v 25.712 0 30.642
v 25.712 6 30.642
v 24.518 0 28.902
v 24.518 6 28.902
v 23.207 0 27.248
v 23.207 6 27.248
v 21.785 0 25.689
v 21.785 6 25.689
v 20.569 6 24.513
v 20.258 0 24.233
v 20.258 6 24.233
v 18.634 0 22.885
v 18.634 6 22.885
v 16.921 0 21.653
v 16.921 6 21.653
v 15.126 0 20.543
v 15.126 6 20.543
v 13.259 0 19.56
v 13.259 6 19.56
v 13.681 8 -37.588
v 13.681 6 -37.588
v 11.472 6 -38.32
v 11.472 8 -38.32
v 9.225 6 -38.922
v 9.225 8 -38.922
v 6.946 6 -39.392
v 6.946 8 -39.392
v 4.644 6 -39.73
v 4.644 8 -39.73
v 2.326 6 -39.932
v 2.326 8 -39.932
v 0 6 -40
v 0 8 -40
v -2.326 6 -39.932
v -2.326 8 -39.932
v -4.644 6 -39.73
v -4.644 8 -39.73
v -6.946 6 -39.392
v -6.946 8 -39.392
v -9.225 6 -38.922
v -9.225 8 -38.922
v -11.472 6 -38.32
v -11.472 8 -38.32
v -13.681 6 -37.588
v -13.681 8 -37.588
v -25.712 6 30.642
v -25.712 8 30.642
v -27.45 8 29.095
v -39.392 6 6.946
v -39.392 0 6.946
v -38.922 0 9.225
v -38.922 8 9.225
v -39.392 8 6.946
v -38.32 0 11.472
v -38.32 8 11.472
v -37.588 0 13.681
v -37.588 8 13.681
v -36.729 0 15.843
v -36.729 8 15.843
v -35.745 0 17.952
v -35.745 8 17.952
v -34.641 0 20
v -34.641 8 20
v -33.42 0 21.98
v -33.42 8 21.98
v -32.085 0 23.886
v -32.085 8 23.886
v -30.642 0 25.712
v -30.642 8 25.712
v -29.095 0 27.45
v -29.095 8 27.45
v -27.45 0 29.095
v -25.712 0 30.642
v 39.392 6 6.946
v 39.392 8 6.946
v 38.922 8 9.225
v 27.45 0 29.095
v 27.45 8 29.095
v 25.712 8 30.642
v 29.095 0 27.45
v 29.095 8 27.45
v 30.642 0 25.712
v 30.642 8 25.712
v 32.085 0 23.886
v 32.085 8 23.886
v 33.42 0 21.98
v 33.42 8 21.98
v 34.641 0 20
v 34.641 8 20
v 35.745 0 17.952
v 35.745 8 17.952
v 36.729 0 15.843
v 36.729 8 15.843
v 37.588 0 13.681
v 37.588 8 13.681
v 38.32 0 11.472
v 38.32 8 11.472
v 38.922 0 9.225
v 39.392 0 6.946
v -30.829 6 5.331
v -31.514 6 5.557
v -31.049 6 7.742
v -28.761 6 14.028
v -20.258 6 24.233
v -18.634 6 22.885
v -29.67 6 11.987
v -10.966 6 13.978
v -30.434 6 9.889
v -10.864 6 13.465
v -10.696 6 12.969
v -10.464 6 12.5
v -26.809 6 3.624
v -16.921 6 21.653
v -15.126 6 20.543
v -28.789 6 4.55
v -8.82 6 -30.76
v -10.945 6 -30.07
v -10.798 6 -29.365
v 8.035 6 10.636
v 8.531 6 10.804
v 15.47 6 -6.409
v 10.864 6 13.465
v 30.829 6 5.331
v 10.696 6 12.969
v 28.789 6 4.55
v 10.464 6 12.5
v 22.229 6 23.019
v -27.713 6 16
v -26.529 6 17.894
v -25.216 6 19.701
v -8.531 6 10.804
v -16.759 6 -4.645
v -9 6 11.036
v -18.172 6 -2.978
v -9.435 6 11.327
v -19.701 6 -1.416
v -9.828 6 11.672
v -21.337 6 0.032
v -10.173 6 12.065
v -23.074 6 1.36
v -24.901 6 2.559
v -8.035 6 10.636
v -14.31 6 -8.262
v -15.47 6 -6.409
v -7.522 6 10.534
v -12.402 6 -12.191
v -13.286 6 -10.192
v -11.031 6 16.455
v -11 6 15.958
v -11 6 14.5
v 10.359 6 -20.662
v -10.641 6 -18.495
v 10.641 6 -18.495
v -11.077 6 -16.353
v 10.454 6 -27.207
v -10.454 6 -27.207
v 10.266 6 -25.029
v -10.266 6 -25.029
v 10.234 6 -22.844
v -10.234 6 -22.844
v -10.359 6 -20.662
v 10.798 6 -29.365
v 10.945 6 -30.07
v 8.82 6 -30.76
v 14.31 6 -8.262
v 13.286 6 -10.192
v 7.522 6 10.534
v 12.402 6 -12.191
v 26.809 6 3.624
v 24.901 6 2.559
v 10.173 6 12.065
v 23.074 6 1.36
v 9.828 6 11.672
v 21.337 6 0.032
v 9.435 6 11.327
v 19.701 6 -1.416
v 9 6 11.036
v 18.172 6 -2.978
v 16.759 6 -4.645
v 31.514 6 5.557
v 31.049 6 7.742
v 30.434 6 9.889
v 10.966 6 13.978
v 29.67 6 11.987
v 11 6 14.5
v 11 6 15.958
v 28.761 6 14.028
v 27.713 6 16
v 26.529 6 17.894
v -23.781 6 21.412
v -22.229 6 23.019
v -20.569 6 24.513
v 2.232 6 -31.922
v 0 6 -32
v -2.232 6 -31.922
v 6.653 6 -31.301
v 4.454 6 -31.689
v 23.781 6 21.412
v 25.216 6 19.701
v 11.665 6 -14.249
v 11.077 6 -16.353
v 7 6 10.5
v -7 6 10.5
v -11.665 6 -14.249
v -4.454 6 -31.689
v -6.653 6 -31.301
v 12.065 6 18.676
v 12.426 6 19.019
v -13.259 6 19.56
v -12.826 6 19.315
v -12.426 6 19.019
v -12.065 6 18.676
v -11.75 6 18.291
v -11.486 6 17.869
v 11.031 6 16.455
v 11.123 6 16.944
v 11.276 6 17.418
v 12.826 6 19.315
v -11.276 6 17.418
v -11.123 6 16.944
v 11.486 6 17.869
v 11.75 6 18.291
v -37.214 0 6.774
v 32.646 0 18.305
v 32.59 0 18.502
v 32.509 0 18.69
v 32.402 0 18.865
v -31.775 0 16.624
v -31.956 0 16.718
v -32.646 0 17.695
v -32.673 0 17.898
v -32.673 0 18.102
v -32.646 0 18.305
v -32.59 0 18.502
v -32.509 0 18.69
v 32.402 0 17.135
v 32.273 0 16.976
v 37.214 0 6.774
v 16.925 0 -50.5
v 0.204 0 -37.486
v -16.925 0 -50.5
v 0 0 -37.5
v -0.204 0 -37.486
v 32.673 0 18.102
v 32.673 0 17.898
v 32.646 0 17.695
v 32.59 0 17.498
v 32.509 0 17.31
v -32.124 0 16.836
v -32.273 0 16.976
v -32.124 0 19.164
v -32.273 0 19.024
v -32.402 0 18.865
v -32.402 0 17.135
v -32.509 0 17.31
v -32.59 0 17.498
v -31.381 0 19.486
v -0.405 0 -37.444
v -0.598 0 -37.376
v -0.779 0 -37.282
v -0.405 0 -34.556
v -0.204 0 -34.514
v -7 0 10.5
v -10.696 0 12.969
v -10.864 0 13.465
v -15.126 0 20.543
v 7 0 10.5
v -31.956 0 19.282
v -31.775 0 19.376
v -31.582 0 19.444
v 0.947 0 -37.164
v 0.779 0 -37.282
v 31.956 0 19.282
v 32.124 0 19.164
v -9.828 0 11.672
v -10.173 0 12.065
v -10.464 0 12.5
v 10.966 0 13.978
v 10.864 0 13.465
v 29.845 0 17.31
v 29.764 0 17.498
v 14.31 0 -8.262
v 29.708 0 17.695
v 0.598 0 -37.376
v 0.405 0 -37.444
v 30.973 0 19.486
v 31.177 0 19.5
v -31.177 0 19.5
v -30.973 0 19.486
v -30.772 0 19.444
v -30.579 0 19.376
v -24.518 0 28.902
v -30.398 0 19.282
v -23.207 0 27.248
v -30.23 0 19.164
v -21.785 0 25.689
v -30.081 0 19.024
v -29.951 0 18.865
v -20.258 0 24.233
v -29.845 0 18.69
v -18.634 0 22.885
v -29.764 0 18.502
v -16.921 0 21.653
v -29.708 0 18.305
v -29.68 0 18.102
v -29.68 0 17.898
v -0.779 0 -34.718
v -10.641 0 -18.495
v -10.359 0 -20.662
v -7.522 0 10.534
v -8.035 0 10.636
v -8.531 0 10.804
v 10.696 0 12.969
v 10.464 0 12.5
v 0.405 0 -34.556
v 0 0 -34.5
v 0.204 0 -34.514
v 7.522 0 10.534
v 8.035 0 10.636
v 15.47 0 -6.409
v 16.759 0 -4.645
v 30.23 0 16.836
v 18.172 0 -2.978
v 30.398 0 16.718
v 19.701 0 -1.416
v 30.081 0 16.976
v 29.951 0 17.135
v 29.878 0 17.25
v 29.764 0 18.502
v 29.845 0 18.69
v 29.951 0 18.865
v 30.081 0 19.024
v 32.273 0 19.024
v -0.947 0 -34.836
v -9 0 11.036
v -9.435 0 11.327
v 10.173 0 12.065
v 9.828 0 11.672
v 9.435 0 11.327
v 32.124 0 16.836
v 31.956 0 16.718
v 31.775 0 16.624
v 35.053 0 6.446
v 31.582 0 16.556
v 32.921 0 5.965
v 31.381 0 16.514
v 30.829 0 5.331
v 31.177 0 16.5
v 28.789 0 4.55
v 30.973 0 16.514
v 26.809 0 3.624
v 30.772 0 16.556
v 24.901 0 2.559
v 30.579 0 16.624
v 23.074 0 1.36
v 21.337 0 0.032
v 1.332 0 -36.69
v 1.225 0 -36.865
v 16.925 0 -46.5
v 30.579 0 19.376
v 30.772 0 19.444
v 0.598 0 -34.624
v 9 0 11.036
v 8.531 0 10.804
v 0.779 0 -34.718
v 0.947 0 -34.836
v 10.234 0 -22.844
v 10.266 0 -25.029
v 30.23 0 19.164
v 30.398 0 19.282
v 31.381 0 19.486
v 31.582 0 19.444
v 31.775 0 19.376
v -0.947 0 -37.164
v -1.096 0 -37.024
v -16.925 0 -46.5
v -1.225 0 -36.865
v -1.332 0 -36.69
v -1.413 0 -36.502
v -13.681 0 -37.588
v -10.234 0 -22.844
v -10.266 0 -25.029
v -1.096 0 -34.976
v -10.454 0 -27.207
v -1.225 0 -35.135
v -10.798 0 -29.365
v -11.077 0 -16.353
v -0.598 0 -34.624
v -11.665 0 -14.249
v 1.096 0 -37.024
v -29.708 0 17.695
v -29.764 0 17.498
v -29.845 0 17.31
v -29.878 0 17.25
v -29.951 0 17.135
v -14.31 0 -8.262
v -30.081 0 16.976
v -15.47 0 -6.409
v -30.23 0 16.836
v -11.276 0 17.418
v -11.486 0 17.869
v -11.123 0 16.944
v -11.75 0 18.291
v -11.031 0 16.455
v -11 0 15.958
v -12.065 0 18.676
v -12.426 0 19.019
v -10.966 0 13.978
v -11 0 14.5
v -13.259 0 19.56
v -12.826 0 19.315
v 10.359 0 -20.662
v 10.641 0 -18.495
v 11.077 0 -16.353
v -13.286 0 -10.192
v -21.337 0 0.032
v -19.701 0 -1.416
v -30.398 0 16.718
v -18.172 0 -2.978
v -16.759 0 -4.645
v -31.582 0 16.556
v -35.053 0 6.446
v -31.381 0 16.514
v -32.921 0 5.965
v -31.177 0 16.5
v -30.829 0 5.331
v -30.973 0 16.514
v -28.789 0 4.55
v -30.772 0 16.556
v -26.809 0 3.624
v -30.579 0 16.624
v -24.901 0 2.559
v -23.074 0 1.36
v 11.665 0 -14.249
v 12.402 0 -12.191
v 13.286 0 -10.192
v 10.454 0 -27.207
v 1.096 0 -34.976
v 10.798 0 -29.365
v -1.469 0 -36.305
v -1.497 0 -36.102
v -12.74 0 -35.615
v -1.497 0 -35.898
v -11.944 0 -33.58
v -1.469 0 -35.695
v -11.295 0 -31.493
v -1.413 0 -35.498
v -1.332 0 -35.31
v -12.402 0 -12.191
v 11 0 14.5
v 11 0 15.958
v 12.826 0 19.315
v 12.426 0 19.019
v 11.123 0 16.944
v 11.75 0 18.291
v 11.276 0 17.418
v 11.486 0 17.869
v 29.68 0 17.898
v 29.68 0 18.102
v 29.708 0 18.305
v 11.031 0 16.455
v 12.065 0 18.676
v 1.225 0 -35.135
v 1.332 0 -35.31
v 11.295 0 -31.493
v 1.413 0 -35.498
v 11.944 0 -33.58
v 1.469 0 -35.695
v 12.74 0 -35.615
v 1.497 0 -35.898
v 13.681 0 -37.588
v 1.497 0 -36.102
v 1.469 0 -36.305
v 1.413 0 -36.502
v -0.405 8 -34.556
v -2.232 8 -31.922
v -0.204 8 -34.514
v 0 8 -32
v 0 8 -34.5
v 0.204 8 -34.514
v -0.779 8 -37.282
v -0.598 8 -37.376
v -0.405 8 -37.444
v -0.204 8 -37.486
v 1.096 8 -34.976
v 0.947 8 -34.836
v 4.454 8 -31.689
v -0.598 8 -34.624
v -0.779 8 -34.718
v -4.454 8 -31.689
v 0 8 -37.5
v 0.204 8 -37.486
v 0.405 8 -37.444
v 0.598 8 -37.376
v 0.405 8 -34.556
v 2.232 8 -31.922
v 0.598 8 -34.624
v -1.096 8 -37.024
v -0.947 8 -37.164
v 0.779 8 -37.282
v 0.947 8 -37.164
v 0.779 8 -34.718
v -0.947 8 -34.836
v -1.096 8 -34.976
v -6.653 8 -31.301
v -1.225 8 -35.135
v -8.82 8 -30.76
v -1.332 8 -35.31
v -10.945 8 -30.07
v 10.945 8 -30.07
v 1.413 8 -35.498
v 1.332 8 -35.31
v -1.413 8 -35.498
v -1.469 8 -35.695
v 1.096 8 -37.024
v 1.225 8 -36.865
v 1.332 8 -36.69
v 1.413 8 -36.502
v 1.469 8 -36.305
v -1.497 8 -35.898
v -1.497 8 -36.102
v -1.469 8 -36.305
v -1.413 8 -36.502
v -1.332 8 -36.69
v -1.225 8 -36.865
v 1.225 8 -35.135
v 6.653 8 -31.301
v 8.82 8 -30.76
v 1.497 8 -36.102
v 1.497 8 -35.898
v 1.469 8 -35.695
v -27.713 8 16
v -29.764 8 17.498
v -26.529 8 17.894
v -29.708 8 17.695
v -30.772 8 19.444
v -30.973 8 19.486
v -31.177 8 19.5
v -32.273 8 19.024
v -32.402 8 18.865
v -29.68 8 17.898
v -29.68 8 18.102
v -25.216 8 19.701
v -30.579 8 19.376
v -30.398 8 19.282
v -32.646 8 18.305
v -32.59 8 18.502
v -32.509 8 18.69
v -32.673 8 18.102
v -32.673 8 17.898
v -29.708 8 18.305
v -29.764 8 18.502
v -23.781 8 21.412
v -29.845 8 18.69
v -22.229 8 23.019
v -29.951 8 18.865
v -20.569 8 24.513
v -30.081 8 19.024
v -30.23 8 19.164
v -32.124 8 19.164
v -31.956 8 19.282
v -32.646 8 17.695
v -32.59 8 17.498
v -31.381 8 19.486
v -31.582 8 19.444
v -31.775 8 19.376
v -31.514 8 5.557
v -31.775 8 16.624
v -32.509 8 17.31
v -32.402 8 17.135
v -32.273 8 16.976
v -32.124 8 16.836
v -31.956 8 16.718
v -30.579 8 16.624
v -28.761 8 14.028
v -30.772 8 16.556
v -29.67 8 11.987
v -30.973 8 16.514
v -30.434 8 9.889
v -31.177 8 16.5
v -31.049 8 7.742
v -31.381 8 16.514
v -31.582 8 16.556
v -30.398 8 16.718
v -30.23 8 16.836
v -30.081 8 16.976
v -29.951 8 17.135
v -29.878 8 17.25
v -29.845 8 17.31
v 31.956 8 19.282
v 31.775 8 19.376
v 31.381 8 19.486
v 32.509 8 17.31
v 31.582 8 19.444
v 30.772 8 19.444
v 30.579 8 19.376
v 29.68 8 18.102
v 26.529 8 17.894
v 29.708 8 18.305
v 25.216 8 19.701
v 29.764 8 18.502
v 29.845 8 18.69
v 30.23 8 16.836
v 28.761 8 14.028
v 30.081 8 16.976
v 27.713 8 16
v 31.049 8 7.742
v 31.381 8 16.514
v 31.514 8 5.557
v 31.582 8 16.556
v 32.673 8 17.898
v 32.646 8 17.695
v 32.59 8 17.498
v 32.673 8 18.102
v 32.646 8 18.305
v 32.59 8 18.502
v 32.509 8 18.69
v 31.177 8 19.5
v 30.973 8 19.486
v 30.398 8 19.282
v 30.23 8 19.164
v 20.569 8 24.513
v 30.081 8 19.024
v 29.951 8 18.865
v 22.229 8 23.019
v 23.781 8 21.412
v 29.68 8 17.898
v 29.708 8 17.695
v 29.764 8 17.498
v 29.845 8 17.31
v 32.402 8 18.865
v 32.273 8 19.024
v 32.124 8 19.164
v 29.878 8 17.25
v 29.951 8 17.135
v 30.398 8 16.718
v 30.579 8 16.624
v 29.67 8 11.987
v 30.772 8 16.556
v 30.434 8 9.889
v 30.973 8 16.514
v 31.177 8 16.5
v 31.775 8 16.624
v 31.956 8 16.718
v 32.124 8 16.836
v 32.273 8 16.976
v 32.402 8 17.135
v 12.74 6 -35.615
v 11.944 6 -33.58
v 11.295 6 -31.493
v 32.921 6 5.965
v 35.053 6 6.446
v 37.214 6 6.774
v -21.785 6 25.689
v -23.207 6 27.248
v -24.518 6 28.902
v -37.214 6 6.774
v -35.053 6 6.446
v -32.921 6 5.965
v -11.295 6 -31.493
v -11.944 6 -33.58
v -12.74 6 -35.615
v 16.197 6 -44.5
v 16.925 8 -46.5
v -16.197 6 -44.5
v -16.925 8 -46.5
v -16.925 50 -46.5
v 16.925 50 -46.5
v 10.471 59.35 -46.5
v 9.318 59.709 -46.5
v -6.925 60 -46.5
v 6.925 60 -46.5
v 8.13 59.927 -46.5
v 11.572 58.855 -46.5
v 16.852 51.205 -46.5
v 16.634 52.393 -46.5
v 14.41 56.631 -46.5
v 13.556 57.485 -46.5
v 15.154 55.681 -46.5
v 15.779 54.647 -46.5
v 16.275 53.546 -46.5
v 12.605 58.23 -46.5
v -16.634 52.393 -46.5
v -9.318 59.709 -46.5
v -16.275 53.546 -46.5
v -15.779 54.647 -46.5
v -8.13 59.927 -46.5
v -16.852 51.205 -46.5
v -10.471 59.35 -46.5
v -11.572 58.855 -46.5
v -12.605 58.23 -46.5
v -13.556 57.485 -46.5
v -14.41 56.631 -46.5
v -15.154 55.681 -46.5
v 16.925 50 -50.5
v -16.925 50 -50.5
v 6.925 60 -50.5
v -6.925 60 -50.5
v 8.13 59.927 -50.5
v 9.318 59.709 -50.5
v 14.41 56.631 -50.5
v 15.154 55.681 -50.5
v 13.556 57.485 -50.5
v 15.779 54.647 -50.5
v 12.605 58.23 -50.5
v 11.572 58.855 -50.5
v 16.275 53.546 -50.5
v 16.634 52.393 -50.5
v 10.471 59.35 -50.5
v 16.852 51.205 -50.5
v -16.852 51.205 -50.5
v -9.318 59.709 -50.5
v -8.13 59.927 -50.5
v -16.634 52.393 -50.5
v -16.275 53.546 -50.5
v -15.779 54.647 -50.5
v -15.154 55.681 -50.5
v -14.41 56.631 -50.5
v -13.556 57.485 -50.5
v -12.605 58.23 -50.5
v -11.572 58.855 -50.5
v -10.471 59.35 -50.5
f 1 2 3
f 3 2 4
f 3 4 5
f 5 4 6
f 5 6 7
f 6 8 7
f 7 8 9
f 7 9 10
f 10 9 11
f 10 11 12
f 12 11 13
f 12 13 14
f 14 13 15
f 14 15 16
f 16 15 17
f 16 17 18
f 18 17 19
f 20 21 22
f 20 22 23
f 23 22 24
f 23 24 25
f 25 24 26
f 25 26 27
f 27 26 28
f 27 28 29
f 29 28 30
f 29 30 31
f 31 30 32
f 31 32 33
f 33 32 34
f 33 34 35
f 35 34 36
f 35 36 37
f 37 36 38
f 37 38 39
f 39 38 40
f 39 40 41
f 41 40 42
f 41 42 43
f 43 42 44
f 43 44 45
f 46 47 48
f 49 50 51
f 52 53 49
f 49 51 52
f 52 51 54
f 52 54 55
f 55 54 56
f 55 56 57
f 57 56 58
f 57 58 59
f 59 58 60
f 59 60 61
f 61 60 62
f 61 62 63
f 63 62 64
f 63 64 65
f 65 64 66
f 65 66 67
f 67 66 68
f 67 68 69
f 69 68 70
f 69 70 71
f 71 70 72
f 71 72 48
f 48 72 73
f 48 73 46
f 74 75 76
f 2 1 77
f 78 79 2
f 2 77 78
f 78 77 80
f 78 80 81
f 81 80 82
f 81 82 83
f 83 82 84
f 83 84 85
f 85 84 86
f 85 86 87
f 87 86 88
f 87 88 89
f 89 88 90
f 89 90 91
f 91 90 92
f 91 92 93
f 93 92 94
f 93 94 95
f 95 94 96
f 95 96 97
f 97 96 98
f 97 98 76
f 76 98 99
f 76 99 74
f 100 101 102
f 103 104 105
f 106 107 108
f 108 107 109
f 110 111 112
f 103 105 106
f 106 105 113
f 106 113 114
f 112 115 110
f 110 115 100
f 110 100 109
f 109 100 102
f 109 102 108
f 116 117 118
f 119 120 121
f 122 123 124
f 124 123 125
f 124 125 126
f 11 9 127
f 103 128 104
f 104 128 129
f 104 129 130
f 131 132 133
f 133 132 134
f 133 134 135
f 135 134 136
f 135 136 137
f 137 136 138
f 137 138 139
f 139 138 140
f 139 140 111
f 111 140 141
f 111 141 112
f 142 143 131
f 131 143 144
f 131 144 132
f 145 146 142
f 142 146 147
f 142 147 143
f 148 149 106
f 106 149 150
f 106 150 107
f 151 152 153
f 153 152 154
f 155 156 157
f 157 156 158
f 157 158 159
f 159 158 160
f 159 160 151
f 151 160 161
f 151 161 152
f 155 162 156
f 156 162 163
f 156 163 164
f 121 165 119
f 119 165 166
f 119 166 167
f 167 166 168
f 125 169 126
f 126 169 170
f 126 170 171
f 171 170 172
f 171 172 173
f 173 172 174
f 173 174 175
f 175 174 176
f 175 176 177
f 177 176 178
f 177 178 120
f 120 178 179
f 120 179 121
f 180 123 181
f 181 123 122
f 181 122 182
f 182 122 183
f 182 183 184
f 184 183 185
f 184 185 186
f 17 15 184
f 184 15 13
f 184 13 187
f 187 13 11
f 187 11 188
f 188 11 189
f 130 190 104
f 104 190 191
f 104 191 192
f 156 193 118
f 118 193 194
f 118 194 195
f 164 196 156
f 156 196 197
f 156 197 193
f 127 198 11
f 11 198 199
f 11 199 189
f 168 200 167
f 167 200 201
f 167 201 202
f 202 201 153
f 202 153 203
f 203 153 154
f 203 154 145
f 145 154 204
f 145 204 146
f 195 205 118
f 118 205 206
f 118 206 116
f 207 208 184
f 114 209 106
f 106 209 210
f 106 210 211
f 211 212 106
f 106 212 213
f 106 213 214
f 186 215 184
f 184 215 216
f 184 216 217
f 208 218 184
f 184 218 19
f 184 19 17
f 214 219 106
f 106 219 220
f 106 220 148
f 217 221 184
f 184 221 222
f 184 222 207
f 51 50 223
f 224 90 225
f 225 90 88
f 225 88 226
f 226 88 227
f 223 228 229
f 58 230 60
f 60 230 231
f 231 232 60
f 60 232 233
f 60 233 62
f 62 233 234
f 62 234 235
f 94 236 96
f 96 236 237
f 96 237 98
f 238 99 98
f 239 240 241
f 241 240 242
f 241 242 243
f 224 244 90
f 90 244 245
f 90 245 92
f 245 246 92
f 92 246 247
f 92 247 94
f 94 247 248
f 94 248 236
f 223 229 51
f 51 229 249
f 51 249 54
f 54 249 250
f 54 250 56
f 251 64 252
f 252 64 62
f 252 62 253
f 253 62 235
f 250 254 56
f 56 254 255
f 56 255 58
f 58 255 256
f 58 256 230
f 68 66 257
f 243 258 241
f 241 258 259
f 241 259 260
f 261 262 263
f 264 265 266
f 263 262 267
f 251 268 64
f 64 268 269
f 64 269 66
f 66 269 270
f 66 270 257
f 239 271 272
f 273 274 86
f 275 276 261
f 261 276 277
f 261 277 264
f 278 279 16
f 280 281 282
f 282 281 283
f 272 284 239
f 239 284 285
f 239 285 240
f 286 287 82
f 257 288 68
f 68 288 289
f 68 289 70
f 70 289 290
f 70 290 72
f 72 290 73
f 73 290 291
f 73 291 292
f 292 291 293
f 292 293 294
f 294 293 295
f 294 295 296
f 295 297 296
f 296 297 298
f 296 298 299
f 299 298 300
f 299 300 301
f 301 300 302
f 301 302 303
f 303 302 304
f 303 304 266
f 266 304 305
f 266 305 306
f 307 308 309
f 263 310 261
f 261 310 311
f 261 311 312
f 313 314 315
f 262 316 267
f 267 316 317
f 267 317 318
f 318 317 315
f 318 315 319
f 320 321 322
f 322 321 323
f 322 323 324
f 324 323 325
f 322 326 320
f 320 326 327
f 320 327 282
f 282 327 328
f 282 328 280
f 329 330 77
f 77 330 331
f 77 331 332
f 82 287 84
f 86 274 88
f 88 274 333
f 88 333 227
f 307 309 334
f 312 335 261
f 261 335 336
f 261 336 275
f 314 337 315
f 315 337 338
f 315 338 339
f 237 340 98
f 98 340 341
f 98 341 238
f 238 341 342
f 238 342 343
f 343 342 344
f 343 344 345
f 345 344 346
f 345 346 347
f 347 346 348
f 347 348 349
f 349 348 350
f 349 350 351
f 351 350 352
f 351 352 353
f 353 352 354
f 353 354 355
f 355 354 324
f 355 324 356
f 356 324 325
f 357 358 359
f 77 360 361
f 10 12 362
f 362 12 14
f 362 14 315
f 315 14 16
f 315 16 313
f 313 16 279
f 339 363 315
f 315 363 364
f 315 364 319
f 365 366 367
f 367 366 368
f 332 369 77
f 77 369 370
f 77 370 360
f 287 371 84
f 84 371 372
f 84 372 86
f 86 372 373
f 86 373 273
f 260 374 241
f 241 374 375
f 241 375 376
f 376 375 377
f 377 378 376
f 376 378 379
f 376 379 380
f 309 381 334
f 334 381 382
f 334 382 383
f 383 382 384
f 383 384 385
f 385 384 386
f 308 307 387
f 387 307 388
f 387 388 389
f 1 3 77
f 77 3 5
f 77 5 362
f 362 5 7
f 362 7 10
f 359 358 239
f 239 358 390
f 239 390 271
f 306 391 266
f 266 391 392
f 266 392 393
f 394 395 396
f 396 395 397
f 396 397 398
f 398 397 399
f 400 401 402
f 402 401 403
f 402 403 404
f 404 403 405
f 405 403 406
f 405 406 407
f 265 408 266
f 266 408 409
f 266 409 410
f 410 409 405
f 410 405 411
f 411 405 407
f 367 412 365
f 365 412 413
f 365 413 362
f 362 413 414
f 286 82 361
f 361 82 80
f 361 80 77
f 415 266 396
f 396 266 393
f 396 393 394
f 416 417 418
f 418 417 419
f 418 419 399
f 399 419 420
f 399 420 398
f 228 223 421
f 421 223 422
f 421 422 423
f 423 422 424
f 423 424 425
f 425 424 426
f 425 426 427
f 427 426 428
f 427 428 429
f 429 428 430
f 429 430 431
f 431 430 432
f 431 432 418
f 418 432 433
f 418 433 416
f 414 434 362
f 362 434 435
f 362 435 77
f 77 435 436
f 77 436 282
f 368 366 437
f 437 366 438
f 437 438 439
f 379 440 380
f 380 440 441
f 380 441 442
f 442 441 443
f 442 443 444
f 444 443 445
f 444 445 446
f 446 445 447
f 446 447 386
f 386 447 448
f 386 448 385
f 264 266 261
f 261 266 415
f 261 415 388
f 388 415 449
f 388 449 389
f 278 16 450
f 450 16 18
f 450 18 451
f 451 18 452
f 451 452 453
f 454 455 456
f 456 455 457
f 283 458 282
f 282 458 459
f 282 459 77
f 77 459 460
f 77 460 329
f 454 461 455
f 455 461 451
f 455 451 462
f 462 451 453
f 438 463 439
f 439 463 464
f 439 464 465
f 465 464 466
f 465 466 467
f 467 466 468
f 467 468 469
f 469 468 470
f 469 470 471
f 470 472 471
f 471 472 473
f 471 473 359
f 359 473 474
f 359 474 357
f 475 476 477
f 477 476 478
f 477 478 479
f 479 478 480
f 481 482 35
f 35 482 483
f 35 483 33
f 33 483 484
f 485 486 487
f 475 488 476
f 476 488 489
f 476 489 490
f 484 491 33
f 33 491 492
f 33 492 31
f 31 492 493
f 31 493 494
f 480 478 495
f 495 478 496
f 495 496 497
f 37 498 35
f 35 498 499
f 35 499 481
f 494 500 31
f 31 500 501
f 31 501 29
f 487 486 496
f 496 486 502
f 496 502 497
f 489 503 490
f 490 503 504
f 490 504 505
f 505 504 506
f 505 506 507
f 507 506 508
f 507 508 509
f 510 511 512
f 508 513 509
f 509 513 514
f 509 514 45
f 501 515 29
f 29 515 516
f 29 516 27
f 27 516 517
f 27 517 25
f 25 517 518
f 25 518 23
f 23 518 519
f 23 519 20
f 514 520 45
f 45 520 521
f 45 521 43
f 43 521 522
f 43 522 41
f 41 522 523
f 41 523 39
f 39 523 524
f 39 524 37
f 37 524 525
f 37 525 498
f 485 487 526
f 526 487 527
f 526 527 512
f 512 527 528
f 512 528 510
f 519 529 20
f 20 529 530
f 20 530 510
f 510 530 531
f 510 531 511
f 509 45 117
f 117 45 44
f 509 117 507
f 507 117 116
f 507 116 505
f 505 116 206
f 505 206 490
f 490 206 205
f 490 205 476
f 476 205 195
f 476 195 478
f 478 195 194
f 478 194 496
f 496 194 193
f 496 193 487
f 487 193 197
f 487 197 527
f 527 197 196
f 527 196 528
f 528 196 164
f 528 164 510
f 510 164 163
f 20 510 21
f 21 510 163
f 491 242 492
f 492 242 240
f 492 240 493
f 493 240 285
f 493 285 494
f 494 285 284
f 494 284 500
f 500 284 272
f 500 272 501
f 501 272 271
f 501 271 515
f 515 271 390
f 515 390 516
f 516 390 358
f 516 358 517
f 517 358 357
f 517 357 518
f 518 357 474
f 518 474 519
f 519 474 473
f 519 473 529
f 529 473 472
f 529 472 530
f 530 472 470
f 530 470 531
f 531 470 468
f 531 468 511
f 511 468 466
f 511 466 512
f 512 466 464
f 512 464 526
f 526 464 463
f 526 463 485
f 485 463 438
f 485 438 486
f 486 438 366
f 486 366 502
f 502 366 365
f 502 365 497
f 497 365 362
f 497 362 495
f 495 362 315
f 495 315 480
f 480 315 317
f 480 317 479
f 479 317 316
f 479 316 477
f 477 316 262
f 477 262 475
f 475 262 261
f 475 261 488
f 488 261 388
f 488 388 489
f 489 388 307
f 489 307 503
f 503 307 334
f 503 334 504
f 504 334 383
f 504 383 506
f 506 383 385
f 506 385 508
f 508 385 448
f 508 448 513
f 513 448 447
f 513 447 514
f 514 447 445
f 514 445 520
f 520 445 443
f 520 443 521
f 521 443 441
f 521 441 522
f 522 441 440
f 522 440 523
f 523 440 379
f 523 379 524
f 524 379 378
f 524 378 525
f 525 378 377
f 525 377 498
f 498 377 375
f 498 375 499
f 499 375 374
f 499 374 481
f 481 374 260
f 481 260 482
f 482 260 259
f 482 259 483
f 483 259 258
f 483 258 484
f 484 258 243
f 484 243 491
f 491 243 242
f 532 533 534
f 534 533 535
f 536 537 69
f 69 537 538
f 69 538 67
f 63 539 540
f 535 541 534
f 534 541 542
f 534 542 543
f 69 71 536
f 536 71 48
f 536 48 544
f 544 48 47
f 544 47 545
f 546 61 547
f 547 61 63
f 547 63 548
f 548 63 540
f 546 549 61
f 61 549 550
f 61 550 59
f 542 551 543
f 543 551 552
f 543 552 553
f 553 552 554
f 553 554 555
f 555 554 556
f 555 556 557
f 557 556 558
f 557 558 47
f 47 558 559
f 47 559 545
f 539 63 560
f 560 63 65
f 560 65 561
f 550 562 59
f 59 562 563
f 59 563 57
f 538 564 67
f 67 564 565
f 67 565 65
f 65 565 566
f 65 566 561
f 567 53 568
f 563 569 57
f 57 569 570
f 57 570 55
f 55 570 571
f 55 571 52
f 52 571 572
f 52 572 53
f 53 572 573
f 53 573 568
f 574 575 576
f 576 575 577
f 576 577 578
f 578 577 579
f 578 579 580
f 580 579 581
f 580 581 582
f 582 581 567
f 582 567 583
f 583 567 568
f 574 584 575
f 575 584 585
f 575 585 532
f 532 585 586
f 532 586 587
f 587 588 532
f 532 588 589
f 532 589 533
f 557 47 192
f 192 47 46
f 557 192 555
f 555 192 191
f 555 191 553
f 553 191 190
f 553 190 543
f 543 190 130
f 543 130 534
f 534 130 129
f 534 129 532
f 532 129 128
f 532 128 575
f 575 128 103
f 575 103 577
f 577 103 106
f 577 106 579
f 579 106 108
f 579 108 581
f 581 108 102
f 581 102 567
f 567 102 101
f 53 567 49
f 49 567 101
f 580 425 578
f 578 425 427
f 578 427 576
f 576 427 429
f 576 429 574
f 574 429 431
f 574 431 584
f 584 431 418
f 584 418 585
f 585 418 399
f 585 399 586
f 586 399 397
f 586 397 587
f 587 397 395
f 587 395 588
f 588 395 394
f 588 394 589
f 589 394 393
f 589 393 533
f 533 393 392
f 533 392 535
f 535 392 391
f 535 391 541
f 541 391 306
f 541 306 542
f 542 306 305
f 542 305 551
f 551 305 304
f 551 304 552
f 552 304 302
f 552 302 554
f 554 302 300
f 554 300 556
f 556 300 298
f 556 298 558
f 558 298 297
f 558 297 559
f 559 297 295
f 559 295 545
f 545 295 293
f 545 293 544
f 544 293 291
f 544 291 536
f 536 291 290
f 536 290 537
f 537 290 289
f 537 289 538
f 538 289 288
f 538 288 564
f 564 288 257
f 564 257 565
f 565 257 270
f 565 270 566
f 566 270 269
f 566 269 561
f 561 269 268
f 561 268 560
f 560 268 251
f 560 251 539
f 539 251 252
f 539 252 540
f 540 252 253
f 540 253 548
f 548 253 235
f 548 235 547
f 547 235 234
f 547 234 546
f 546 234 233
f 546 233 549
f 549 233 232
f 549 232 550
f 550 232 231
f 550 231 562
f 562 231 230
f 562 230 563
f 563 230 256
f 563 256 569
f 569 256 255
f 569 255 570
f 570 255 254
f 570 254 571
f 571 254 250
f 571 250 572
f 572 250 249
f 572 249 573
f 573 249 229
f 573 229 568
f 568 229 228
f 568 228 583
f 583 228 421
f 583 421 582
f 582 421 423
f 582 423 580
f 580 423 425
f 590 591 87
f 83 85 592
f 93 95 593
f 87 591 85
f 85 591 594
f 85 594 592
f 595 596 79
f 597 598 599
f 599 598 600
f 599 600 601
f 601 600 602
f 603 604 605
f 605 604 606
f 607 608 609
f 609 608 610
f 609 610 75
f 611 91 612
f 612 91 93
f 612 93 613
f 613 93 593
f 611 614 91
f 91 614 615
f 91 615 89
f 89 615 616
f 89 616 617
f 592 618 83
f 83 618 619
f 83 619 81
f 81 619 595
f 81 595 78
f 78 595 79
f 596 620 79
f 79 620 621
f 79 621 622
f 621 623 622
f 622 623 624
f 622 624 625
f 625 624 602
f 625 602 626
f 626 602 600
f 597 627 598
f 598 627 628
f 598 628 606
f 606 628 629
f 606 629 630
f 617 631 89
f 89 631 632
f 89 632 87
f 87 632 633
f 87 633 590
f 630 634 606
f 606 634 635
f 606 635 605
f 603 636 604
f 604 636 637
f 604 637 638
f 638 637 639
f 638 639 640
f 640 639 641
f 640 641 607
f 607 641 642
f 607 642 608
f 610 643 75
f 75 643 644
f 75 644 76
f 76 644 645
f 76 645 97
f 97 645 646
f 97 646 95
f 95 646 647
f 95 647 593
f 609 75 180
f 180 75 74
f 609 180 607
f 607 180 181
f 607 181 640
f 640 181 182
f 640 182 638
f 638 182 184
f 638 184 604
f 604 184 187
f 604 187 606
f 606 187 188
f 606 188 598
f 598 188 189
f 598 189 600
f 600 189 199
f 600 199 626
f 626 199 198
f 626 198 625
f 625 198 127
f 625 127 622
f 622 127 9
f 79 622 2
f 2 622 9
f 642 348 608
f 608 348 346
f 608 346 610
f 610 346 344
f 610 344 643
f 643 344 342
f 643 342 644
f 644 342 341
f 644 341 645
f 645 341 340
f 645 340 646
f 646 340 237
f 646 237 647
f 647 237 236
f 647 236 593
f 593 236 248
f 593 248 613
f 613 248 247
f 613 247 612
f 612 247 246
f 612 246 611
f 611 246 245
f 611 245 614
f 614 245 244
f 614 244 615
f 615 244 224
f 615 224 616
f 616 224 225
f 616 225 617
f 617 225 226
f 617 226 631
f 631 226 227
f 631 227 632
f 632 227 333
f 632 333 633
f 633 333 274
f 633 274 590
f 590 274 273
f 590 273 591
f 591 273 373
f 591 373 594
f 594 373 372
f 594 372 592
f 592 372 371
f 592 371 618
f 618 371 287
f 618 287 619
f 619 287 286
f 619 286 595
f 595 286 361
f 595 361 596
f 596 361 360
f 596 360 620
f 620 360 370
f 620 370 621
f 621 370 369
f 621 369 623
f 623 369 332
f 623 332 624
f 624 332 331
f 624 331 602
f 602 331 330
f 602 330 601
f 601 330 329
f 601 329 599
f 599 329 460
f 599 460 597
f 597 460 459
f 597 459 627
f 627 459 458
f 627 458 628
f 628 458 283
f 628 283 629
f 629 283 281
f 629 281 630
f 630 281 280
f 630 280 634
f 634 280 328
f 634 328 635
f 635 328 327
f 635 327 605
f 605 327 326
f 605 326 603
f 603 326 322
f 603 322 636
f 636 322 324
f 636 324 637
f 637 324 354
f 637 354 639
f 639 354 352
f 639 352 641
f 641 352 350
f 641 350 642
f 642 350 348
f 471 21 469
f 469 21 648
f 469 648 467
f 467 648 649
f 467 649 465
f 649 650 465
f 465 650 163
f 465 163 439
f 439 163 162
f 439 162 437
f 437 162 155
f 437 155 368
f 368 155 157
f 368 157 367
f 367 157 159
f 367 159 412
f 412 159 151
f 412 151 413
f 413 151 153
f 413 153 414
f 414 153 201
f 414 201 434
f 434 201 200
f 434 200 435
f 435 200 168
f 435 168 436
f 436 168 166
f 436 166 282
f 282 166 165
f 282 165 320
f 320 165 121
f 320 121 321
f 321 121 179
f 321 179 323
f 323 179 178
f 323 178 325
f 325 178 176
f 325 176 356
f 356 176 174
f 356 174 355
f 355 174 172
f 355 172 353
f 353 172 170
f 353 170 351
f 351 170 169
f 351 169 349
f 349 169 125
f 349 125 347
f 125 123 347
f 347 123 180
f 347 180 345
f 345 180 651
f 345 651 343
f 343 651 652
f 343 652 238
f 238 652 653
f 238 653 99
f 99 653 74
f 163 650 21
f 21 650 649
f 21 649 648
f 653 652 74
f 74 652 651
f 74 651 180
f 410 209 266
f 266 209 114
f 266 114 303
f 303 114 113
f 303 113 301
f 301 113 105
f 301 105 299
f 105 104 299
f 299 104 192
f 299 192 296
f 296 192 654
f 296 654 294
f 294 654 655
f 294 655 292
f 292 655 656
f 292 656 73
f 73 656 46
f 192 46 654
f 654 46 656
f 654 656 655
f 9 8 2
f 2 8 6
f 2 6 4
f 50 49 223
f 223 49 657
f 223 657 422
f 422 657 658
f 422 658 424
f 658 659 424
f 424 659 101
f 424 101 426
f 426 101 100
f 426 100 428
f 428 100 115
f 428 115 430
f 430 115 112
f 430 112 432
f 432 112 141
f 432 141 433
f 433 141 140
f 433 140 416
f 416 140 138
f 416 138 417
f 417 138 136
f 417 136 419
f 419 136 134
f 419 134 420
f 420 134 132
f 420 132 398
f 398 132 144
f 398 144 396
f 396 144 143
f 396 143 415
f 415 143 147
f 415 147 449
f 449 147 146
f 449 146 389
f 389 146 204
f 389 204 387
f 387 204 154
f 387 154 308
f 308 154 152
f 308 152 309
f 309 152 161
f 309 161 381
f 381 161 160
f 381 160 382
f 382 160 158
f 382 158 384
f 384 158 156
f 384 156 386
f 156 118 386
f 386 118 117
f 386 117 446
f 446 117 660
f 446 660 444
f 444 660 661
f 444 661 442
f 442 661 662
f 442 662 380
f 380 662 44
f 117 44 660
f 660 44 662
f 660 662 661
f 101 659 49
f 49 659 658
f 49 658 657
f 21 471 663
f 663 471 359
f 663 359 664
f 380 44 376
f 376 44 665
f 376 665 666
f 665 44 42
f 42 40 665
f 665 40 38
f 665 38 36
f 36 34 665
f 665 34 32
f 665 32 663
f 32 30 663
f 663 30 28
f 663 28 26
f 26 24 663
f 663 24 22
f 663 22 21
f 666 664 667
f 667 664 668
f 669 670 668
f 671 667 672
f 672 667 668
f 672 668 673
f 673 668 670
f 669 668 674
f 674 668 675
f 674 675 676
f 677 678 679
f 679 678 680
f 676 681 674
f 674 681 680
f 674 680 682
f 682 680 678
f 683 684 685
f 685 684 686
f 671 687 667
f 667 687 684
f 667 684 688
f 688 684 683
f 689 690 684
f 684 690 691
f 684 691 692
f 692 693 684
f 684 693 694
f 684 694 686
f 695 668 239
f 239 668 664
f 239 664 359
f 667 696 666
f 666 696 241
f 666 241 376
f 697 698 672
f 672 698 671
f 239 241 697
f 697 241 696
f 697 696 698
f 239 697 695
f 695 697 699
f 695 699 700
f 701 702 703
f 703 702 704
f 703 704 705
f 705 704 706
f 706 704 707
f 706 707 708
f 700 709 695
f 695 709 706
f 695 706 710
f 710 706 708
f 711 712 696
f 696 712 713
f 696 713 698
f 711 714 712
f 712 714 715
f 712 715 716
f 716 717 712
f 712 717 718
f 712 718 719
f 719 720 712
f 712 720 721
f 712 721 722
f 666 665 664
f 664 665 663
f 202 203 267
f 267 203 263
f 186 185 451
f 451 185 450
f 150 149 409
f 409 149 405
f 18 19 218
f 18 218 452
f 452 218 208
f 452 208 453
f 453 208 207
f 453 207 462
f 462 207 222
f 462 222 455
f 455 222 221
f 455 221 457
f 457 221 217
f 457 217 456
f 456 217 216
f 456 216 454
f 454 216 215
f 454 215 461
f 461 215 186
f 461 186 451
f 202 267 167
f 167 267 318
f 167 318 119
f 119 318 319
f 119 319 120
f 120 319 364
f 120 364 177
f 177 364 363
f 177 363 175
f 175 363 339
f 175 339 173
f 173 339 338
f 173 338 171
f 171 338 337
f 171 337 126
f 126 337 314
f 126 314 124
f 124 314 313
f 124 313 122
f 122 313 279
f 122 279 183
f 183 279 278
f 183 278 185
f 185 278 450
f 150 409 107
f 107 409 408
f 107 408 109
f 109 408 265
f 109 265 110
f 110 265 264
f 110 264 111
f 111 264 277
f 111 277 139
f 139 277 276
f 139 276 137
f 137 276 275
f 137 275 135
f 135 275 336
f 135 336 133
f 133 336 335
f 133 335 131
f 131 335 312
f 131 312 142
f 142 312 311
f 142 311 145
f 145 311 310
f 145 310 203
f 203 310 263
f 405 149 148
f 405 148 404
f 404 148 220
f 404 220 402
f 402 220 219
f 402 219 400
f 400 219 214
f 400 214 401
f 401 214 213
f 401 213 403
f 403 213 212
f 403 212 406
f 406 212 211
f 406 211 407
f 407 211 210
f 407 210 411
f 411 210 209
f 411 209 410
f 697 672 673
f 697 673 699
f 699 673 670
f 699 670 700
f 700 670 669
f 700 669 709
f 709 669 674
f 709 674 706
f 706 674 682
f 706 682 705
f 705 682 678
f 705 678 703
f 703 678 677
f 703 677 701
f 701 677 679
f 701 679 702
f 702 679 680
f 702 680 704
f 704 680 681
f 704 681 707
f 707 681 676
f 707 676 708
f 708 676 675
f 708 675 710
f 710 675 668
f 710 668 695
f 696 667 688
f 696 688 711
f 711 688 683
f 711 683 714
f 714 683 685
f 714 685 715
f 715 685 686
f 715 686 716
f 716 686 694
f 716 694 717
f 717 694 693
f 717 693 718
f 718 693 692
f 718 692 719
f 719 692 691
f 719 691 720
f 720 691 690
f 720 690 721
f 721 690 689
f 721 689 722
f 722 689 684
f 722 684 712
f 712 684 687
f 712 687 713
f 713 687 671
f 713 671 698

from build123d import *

# Parameters (mm, degrees)
SKETCH1_R           = 40
BOSS_EXTRUDE1_DEPTH = 6
SKETCH2_R           = 1.5
BOSS_EXTRUDE2_DEPTH = 2
SKETCH16_R          = 1.5
CUT_EXTRUDE9_DEPTH  = 9
CIRPATTERN1_COUNT   = 3
SKETCH5_R           = 30.471270003
CUT_EXTRUDE3_DEPTH  = 7
CIRPATTERN2_COUNT   = 3
BOSS_EXTRUDE3_DEPTH = 6
SKETCH18_W          = 33.849231786
SKETCH18_H          = 60
BOSS_EXTRUDE4_DEPTH = 4
CHAMFER1_SIZE       = 2
SKETCH19_W          = 22
SKETCH19_H          = 10
CUT_EXTRUDE10_DEPTH = 25
FILLET1_R           = 4
FILLET2_R           = 10


with BuildPart() as part:
    # Sketch1 → Boss-Extrude1 (new body)
    with BuildSketch(Plane(origin=(0, 0, 0), x_dir=(1, 0, 0), z_dir=(0, 1, 0))):
        Circle(SKETCH1_R)
    extrude(amount=BOSS_EXTRUDE1_DEPTH)

    # Sketch2 → Boss-Extrude2 (add)
    with BuildSketch(Plane(origin=(0, 6, 0), x_dir=(1, 0, 0), z_dir=(0, 1, 0))):
        with BuildLine():
            Line((-13.680805733, 37.587704831), (-10.944644586, 30.070163865))
            ThreePointArc((-10.944644586, 30.070163865), (0, 32), (10.944644586, 30.070163865))
            Line((10.944644586, 30.070163865), (13.680805733, 37.587704831))
            ThreePointArc((13.680805733, 37.587704831), (0, 40), (-13.680805733, 37.587704831))
        make_face()
        with Locations((0, 36)):
            Circle(SKETCH2_R, mode=Mode.SUBTRACT)
    boss_extrude2 = extrude(amount=BOSS_EXTRUDE2_DEPTH)

    # Sketch16 → Cut-Extrude9 (cut, through all)
    with BuildSketch(Plane(origin=(0, 8, 0), x_dir=(1, 0, 0), z_dir=(0, 1, 0))):
        with Locations((0, 36)):
            Circle(SKETCH16_R)
    cut_extrude9 = extrude(amount=-CUT_EXTRUDE9_DEPTH, mode=Mode.SUBTRACT)

    # CirPattern1: Boss-Extrude2, Cut-Extrude9 ×3 about axis
    cirpattern1_axis = Axis((0, 0, 0), (0, 1, 0))
    for i in range(1, CIRPATTERN1_COUNT):
        add(boss_extrude2.rotate(cirpattern1_axis, i * 360 / CIRPATTERN1_COUNT))
        add(cut_extrude9.rotate(cirpattern1_axis, i * 360 / CIRPATTERN1_COUNT), mode=Mode.SUBTRACT)

    # Sketch5 → Cut-Extrude3 (cut, through all)
    with BuildSketch(Plane(origin=(0, 6, 0), x_dir=(1, 0, 0), z_dir=(0, 1, 0))):
        with Locations((40.698571494, 23.497331208)):
            Circle(SKETCH5_R)
    cut_extrude3 = extrude(amount=-CUT_EXTRUDE3_DEPTH, mode=Mode.SUBTRACT)

    # CirPattern2: Cut-Extrude3 ×3 about axis
    cirpattern2_axis = Axis((0, 0, 0), (0, 1, 0))
    for i in range(1, CIRPATTERN2_COUNT):
        add(cut_extrude3.rotate(cirpattern2_axis, i * 360 / CIRPATTERN2_COUNT), mode=Mode.SUBTRACT)

    # Sketch17 → Boss-Extrude3 (add)
    with BuildSketch(Plane(origin=(0, 0, 0), x_dir=(1, 0, 0), z_dir=(0, 1, 0))):
        with BuildLine():
            Line((-13.680805733, 37.587704831), (-16.924615893, 46.5))
            Line((-16.924615893, 46.5), (16.924615893, 46.5))
            Line((16.924615893, 46.5), (13.680805733, 37.587704831))
            ThreePointArc((13.680805733, 37.587704831), (0, 40), (-13.680805733, 37.587704831))
        make_face()
    extrude(amount=BOSS_EXTRUDE3_DEPTH)

    # Sketch18 → Boss-Extrude4 (add)
    with BuildSketch(Plane(origin=(0, 0, -46.5), x_dir=(-1, 0, 0), z_dir=(0, 0, -1))):
        with Locations((0, 30)):
            Rectangle(SKETCH18_W, SKETCH18_H)
    extrude(amount=BOSS_EXTRUDE4_DEPTH)

    # Chamfer1
    chamfer1_edges = [part.edges().sort_by_distance(p)[0] for p in [
        (0, 6, -46.5),
    ]]
    chamfer(chamfer1_edges, length=CHAMFER1_SIZE)

    # Sketch19 → Cut-Extrude10 (cut)
    with BuildSketch(Plane(origin=(0, 6, 0), x_dir=(1, 0, 0), z_dir=(0, 1, 0))):
        with Locations((0, -15.5)):
            Rectangle(SKETCH19_W, SKETCH19_H)
    extrude(amount=-CUT_EXTRUDE10_DEPTH, mode=Mode.SUBTRACT)

    # Fillet1
    fillet1_edges = [part.edges().sort_by_distance(p)[0] for p in [
        (-11, 3, 18.578147929),
        (11, 3, 18.578147929),
        (-11, 3, 10.5),
        (11, 3, 10.5),
    ]]
    fillet(fillet1_edges, radius=FILLET1_R)

    # Fillet2
    fillet2_edges = [part.edges().sort_by_distance(p)[0] for p in [
        (16.924615893, 60, -48.5),
        (-16.924615893, 60, -48.5),
    ]]
    fillet(fillet2_edges, radius=FILLET2_R)


solid = part.part
